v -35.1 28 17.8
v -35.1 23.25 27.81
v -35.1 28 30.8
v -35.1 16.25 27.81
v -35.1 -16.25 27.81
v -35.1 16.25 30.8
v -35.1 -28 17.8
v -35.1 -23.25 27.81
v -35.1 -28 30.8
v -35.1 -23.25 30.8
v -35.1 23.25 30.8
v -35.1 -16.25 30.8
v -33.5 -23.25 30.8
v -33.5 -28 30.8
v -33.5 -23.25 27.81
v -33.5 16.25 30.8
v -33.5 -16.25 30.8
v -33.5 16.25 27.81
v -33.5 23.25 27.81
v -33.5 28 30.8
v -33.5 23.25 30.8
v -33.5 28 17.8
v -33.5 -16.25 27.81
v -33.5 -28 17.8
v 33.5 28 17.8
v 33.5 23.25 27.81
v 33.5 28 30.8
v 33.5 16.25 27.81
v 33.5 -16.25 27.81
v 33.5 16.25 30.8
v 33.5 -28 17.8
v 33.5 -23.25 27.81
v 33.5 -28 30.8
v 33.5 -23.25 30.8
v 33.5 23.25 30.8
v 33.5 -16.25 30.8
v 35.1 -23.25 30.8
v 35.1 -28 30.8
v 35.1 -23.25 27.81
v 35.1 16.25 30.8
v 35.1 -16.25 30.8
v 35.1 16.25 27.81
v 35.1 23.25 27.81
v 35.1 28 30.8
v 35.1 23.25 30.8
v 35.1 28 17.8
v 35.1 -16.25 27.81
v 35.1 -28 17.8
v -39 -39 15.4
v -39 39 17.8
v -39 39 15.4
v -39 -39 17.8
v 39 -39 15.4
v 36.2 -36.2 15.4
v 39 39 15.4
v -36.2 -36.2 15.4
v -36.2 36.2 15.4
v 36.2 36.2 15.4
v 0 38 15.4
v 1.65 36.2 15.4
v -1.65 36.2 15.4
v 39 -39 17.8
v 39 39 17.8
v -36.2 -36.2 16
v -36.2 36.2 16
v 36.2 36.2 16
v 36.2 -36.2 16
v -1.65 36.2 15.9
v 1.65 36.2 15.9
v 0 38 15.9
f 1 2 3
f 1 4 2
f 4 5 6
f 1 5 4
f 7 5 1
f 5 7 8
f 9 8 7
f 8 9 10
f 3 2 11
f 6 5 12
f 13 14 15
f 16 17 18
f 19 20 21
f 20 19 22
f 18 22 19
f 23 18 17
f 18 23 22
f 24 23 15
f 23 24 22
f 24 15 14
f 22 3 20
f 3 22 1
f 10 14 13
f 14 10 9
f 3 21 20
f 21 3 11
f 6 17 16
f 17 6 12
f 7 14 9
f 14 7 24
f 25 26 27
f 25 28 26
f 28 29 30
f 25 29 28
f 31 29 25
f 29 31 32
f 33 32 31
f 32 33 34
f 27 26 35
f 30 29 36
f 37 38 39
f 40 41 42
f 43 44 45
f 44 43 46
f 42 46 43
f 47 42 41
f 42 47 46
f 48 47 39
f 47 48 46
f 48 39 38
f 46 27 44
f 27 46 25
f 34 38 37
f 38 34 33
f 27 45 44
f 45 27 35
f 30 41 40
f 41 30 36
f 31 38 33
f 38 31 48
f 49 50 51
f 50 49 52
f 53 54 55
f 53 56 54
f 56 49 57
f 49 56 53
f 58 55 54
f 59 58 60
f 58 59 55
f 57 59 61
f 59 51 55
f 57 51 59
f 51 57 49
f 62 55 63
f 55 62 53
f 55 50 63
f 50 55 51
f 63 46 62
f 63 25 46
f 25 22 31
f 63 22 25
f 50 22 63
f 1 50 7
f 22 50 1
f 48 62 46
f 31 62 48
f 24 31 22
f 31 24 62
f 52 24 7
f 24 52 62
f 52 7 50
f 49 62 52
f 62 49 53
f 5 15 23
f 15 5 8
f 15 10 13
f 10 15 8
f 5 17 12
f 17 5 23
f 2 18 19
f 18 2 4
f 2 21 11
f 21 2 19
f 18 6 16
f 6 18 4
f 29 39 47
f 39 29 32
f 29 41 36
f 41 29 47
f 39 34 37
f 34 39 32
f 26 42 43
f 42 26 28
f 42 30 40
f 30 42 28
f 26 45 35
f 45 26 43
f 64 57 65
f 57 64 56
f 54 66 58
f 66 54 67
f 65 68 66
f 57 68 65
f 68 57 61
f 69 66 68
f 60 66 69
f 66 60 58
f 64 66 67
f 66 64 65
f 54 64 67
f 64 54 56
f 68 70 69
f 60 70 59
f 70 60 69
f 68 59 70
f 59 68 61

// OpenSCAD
// Marker cap for Grover's top (2026-10-24, Enoch: "maybe a bracket to hold
// Grover marker?" after the taped sheet curled up and the overhead lost it).
//
// A lid that friction-fits over the battery cradle's two long walls
// (battery-cradle.scad v3: outer width holder_w + clear_w + 2*wall_t =
// 66.6 mm) and carries the 60 mm ArUco id 2 marker on a flat top, FRONT
// toward the nose. The paper square (marker + 6 mm white margin, 72 x 72,
// cut from hardware/markers/aruco_4x4_50_id2_60mm.png) glues into a
// shallow recess; the plate around it stays white-ish for a quiet zone.
// Skirts grip only the long walls' outer faces, so both ends of the pocket
// (balance leads, BMS window) stay open; notches let the cradle's zip
// ties pass. Prints TOP FACE DOWN, no supports: the recess is a pocket in
// the first layers, the skirts rise as plain walls.
//
// ASSUMED: the cells stand <= 3 mm proud of the wall tops (body_h 17 in
// the cradle file was itself assumed; the lid sits 3 mm above the walls).

cradle_outer_w = 66.6;   // battery-cradle.scad: holder_w 61 + clear_w 0.6 + 2 * wall_t 2.5
holder_l       = 79;     // pocket length is holder_l + 4.6; skirts are shorter than that
fit            = 0.4;    // skirt inner width over the cradle's outer width
skirt_t        = 1.6;
skirt_len      = 56;     // along the holder, centred: clears both pocket ends by > 10 mm
grip_h         = 10;     // how far the skirts reach down the walls
cell_clear     = 3;      // lid underside above the wall tops (cells stand proud)
plate_t        = 2.4;
plate_w        = 78;     // across; >= 72 recess + rim
plate_l        = 78;     // along
recess         = 72.4;   // paper square 72 + play
recess_d       = 0.6;
tie_notch_w    = 7;      // the cradle's tie slots are 5 wide at y = +/- holder_l/4 from the pocket centre
tie_notch_d    = 3;

inner_w = cradle_outer_w + fit;
skirt_h = cell_clear + grip_h;

module cap() {
  difference() {
    union() {
      // plate, top at z = 0 (printed face), extends down to -plate_t
      translate([-plate_w / 2, -plate_l / 2, -plate_t]) cube([plate_w, plate_l, plate_t]);
      // skirts
      for (sx = [-1, 1])
        translate([sx * (inner_w / 2 + skirt_t / 2) - skirt_t / 2, -skirt_len / 2, -plate_t - skirt_h])
          cube([skirt_t, skirt_len, skirt_h + 0.01]);
    }
    // marker recess in the top face
    translate([-recess / 2, -recess / 2, -recess_d]) cube([recess, recess, recess_d + 1]);
    // zip-tie notches at the skirt bottoms
    for (sx = [-1, 1], sy = [-1, 1])
      translate([sx * (inner_w / 2 + skirt_t / 2), sy * holder_l / 4, -plate_t - skirt_h + tie_notch_d / 2 - 0.01])
        cube([skirt_t * 3, tie_notch_w, tie_notch_d], center = true);
    // FRONT arrow engraved in the rim, +y edge (the nose end)
    translate([0, plate_l / 2 - 2.2, -0.5]) linear_extrude(1) polygon([[-2.2, -1.2], [2.2, -1.2], [0, 1.2]]);
  }
}

// print orientation: flip so the top face is on the bed
translate([0, 0, plate_t + skirt_h]) mirror([0, 0, 1]) cap();

echo(str("marker cap: plate ", plate_w, "x", plate_l, "x", plate_t, "  skirts inner ", inner_w,
         " x ", skirt_len, " long, ", skirt_h, " deep (grip ", grip_h, ")  recess ", recess, " sq"));
